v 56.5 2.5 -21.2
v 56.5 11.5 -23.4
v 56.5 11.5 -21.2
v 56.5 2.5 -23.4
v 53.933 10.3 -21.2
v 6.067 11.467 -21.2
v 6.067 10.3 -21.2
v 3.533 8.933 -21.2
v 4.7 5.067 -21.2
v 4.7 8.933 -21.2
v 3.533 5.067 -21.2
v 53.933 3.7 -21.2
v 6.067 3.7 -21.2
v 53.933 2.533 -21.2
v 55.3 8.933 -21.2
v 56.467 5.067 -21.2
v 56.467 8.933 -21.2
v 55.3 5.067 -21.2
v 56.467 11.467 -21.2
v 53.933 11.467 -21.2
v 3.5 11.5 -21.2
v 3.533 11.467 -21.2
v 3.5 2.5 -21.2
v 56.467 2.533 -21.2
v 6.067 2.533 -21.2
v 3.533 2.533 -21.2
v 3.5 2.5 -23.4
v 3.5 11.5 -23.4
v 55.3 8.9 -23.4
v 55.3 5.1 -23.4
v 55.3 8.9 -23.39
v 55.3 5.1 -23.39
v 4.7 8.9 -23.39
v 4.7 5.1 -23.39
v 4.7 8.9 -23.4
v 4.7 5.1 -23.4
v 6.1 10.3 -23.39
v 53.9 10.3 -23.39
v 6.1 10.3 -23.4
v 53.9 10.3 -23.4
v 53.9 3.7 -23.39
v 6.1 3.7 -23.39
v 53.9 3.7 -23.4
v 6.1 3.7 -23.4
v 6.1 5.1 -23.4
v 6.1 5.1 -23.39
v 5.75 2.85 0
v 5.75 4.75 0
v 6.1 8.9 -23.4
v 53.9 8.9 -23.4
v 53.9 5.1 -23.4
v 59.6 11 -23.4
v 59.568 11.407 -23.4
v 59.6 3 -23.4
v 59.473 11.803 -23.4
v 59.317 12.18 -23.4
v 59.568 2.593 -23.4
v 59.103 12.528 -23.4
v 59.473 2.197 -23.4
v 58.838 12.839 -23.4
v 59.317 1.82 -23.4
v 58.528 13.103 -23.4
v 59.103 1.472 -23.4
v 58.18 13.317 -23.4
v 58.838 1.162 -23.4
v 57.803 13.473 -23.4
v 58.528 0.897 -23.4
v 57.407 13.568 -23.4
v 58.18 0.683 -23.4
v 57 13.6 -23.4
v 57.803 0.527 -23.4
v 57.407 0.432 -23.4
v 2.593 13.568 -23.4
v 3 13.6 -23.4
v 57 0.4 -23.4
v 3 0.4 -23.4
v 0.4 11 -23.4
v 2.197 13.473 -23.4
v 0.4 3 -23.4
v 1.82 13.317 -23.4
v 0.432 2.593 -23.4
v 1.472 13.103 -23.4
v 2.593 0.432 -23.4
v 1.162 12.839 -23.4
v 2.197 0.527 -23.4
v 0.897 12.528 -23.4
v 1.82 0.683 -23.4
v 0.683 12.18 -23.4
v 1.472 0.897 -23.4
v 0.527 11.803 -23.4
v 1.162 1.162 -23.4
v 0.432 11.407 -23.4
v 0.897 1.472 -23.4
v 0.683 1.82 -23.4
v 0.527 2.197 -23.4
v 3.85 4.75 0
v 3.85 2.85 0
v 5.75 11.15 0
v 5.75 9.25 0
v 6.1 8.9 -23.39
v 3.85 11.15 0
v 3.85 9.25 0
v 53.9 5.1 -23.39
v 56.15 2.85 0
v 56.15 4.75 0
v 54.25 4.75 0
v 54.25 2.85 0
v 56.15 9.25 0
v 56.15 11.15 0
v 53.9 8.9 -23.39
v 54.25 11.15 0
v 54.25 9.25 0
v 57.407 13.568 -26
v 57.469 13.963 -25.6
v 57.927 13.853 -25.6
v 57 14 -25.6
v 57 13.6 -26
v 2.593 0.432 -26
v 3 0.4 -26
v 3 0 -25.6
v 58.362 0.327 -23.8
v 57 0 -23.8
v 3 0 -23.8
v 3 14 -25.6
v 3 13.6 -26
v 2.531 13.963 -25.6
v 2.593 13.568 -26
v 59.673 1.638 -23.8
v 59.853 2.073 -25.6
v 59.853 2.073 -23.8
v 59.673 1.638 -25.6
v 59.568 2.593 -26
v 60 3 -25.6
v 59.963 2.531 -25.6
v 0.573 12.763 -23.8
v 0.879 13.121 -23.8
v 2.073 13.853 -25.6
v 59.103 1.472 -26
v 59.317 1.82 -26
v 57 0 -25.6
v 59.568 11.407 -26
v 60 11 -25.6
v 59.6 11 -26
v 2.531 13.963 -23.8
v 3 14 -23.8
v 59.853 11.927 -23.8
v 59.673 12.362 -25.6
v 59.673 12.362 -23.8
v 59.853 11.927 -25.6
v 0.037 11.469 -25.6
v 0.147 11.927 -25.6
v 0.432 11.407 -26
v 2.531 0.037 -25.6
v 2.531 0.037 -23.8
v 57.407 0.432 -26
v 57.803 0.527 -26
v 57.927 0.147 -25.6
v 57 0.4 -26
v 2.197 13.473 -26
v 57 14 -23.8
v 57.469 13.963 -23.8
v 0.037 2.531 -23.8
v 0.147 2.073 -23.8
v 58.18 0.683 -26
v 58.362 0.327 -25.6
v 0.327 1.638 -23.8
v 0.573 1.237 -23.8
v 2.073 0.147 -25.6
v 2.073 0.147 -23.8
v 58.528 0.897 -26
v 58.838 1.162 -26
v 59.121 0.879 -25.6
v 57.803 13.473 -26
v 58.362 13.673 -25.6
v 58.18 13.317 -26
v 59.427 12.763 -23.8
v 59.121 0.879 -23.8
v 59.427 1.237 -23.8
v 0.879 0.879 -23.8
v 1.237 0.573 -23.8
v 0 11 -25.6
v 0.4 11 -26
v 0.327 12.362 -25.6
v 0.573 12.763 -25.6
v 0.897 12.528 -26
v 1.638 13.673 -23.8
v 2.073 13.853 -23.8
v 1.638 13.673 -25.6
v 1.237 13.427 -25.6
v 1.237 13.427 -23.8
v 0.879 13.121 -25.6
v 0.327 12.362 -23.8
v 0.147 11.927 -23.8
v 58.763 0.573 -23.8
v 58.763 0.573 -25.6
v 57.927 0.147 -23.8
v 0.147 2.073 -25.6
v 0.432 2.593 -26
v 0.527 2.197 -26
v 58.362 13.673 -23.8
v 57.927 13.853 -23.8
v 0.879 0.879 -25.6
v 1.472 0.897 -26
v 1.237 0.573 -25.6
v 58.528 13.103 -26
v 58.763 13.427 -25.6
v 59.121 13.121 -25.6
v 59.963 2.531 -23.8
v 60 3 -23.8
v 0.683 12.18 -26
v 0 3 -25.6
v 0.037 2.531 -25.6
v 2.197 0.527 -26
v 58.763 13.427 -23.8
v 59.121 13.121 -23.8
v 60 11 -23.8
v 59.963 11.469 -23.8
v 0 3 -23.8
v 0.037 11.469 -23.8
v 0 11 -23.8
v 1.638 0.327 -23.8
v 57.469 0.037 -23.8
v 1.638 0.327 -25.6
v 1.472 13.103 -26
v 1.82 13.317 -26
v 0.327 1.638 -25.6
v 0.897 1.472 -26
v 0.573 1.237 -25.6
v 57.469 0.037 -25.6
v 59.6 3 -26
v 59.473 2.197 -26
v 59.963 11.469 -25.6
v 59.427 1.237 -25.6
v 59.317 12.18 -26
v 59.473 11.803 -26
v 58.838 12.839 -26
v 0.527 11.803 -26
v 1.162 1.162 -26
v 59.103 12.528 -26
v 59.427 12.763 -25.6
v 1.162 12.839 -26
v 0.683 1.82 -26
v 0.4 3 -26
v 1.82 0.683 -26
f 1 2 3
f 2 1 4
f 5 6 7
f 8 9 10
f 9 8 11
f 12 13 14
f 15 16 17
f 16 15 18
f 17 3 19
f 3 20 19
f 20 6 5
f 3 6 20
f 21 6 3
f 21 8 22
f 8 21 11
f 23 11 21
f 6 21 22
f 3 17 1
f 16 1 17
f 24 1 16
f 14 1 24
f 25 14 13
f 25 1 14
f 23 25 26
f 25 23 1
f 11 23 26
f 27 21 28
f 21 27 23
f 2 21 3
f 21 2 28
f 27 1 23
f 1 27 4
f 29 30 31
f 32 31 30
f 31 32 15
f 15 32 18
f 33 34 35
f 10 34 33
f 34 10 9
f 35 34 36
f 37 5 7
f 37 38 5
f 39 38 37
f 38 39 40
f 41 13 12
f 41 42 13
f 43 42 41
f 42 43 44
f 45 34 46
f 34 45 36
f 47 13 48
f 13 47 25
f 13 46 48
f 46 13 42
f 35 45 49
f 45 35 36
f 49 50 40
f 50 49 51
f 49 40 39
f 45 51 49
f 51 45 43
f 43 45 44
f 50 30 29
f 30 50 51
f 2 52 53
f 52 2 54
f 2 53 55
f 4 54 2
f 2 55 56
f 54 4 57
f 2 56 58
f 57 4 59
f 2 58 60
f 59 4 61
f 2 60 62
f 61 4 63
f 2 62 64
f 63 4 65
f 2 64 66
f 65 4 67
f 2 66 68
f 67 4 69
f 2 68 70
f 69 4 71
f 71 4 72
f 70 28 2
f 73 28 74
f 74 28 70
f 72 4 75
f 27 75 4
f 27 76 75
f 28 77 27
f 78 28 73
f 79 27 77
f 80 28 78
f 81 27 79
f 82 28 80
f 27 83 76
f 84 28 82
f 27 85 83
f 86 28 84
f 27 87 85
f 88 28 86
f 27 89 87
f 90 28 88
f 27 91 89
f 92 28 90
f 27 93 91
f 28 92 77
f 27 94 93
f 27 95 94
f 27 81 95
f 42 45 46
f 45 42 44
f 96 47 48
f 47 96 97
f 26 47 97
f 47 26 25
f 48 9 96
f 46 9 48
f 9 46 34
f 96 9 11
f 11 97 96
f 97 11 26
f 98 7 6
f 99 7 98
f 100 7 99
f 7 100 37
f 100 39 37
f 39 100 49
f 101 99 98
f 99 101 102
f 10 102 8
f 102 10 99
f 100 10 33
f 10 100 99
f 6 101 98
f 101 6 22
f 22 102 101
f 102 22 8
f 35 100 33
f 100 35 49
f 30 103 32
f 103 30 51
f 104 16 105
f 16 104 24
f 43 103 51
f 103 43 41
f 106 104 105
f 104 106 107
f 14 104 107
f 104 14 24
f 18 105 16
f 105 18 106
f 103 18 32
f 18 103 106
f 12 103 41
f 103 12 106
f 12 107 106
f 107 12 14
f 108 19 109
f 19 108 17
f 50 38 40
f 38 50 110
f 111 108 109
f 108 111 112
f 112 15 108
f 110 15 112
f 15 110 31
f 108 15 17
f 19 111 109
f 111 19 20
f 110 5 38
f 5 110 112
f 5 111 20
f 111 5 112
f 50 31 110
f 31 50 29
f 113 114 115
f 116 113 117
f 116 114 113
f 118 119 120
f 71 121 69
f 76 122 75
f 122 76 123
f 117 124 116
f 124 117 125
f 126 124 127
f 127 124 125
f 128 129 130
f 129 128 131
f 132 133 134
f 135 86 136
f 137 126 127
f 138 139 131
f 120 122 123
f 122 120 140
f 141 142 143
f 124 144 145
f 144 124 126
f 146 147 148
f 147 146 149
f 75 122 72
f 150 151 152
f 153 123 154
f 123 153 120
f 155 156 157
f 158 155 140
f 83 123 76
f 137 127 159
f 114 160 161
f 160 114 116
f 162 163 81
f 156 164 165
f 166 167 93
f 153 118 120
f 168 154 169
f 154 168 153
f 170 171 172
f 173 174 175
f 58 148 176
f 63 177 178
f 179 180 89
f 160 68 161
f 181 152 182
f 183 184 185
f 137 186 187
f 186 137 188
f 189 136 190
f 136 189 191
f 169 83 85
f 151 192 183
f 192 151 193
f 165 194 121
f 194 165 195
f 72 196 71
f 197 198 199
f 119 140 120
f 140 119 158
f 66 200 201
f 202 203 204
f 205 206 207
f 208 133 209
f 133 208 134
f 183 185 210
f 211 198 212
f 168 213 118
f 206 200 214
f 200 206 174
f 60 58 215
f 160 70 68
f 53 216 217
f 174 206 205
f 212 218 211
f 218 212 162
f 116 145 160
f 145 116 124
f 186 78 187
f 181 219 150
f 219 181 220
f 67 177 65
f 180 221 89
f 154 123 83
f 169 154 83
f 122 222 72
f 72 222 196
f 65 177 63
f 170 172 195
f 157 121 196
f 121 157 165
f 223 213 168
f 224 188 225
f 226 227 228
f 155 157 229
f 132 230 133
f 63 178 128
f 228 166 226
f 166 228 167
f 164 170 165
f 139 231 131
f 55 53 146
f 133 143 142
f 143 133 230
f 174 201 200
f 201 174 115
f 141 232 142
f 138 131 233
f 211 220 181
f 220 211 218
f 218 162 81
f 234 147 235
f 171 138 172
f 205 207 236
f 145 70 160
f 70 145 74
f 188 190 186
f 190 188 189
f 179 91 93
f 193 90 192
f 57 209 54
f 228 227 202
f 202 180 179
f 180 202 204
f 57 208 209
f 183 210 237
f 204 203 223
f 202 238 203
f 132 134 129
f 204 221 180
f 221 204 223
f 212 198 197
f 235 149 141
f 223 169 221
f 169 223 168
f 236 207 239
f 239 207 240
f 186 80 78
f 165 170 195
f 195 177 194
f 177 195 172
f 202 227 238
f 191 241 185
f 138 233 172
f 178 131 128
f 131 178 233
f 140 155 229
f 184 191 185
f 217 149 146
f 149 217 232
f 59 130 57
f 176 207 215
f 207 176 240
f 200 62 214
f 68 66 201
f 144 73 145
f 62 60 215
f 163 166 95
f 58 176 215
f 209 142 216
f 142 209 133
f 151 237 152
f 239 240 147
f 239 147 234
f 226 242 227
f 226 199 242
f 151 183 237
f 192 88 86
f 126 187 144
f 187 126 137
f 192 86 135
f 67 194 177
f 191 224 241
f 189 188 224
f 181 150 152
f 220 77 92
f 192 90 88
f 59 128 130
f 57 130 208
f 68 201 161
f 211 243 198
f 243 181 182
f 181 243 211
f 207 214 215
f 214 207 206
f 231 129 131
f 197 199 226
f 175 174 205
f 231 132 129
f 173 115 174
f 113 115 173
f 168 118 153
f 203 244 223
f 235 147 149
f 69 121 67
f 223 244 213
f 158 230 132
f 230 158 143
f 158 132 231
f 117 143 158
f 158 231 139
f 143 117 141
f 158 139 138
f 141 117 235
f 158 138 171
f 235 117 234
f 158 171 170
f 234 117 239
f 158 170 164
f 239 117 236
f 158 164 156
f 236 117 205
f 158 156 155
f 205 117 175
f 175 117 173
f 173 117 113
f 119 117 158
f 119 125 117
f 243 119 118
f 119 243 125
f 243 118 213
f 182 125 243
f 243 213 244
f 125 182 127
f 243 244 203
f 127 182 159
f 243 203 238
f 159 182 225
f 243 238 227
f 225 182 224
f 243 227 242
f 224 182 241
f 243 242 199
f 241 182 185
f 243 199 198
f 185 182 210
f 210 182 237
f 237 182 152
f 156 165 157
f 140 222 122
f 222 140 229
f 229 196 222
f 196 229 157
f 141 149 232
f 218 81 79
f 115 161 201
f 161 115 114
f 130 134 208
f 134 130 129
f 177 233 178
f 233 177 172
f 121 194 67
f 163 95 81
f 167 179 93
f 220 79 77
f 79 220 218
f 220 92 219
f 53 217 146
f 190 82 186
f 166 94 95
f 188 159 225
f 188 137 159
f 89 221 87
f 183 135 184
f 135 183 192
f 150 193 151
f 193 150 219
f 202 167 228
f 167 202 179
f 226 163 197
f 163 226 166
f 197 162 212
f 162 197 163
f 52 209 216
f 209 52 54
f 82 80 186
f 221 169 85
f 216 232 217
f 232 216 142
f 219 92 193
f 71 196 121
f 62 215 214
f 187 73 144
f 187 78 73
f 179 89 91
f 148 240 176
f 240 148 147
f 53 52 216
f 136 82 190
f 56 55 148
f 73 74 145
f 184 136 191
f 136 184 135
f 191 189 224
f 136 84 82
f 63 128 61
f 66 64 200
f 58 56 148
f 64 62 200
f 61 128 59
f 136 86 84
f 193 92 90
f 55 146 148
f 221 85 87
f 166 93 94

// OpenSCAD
// Coffee_Table.stl  -  Store Versile room frame (Rev C)
// Quantity: 1   Filament: White (e.g. PLA Basic Jade White / Matte Ivory White)
// Print: layer 0.12 mm, infill 20%, 2 walls, brim 0 mm, NO supports
// Orientation: flip  (upside down)
// Notes: Upside down. FILAMENT CHANGE at 2.6 mm: white top first, then wood legs.
// The library draws parts with their front toward +Y; mirror([0,1,0]) makes the real
// part face the viewer correctly (see build.py). Edit dimensions in versile_parts.scad.
use <../versile_parts.scad>

rotate([180, 0, 0]) mirror([0, 1, 0]) coffee_table();
